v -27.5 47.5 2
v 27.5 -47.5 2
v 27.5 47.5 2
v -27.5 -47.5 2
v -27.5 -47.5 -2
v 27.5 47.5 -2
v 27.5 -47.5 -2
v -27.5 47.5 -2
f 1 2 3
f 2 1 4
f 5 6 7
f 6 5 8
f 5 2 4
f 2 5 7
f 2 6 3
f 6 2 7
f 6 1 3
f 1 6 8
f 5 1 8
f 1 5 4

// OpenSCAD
// ========================================
// a plate 55 mm wide 95 mm deep and 4 mm thick
// NeuroCAD canonical IR; dimensions are millimetres
// ========================================
$fn = 48;

cube(size=[55, 95, 4], center=true);
